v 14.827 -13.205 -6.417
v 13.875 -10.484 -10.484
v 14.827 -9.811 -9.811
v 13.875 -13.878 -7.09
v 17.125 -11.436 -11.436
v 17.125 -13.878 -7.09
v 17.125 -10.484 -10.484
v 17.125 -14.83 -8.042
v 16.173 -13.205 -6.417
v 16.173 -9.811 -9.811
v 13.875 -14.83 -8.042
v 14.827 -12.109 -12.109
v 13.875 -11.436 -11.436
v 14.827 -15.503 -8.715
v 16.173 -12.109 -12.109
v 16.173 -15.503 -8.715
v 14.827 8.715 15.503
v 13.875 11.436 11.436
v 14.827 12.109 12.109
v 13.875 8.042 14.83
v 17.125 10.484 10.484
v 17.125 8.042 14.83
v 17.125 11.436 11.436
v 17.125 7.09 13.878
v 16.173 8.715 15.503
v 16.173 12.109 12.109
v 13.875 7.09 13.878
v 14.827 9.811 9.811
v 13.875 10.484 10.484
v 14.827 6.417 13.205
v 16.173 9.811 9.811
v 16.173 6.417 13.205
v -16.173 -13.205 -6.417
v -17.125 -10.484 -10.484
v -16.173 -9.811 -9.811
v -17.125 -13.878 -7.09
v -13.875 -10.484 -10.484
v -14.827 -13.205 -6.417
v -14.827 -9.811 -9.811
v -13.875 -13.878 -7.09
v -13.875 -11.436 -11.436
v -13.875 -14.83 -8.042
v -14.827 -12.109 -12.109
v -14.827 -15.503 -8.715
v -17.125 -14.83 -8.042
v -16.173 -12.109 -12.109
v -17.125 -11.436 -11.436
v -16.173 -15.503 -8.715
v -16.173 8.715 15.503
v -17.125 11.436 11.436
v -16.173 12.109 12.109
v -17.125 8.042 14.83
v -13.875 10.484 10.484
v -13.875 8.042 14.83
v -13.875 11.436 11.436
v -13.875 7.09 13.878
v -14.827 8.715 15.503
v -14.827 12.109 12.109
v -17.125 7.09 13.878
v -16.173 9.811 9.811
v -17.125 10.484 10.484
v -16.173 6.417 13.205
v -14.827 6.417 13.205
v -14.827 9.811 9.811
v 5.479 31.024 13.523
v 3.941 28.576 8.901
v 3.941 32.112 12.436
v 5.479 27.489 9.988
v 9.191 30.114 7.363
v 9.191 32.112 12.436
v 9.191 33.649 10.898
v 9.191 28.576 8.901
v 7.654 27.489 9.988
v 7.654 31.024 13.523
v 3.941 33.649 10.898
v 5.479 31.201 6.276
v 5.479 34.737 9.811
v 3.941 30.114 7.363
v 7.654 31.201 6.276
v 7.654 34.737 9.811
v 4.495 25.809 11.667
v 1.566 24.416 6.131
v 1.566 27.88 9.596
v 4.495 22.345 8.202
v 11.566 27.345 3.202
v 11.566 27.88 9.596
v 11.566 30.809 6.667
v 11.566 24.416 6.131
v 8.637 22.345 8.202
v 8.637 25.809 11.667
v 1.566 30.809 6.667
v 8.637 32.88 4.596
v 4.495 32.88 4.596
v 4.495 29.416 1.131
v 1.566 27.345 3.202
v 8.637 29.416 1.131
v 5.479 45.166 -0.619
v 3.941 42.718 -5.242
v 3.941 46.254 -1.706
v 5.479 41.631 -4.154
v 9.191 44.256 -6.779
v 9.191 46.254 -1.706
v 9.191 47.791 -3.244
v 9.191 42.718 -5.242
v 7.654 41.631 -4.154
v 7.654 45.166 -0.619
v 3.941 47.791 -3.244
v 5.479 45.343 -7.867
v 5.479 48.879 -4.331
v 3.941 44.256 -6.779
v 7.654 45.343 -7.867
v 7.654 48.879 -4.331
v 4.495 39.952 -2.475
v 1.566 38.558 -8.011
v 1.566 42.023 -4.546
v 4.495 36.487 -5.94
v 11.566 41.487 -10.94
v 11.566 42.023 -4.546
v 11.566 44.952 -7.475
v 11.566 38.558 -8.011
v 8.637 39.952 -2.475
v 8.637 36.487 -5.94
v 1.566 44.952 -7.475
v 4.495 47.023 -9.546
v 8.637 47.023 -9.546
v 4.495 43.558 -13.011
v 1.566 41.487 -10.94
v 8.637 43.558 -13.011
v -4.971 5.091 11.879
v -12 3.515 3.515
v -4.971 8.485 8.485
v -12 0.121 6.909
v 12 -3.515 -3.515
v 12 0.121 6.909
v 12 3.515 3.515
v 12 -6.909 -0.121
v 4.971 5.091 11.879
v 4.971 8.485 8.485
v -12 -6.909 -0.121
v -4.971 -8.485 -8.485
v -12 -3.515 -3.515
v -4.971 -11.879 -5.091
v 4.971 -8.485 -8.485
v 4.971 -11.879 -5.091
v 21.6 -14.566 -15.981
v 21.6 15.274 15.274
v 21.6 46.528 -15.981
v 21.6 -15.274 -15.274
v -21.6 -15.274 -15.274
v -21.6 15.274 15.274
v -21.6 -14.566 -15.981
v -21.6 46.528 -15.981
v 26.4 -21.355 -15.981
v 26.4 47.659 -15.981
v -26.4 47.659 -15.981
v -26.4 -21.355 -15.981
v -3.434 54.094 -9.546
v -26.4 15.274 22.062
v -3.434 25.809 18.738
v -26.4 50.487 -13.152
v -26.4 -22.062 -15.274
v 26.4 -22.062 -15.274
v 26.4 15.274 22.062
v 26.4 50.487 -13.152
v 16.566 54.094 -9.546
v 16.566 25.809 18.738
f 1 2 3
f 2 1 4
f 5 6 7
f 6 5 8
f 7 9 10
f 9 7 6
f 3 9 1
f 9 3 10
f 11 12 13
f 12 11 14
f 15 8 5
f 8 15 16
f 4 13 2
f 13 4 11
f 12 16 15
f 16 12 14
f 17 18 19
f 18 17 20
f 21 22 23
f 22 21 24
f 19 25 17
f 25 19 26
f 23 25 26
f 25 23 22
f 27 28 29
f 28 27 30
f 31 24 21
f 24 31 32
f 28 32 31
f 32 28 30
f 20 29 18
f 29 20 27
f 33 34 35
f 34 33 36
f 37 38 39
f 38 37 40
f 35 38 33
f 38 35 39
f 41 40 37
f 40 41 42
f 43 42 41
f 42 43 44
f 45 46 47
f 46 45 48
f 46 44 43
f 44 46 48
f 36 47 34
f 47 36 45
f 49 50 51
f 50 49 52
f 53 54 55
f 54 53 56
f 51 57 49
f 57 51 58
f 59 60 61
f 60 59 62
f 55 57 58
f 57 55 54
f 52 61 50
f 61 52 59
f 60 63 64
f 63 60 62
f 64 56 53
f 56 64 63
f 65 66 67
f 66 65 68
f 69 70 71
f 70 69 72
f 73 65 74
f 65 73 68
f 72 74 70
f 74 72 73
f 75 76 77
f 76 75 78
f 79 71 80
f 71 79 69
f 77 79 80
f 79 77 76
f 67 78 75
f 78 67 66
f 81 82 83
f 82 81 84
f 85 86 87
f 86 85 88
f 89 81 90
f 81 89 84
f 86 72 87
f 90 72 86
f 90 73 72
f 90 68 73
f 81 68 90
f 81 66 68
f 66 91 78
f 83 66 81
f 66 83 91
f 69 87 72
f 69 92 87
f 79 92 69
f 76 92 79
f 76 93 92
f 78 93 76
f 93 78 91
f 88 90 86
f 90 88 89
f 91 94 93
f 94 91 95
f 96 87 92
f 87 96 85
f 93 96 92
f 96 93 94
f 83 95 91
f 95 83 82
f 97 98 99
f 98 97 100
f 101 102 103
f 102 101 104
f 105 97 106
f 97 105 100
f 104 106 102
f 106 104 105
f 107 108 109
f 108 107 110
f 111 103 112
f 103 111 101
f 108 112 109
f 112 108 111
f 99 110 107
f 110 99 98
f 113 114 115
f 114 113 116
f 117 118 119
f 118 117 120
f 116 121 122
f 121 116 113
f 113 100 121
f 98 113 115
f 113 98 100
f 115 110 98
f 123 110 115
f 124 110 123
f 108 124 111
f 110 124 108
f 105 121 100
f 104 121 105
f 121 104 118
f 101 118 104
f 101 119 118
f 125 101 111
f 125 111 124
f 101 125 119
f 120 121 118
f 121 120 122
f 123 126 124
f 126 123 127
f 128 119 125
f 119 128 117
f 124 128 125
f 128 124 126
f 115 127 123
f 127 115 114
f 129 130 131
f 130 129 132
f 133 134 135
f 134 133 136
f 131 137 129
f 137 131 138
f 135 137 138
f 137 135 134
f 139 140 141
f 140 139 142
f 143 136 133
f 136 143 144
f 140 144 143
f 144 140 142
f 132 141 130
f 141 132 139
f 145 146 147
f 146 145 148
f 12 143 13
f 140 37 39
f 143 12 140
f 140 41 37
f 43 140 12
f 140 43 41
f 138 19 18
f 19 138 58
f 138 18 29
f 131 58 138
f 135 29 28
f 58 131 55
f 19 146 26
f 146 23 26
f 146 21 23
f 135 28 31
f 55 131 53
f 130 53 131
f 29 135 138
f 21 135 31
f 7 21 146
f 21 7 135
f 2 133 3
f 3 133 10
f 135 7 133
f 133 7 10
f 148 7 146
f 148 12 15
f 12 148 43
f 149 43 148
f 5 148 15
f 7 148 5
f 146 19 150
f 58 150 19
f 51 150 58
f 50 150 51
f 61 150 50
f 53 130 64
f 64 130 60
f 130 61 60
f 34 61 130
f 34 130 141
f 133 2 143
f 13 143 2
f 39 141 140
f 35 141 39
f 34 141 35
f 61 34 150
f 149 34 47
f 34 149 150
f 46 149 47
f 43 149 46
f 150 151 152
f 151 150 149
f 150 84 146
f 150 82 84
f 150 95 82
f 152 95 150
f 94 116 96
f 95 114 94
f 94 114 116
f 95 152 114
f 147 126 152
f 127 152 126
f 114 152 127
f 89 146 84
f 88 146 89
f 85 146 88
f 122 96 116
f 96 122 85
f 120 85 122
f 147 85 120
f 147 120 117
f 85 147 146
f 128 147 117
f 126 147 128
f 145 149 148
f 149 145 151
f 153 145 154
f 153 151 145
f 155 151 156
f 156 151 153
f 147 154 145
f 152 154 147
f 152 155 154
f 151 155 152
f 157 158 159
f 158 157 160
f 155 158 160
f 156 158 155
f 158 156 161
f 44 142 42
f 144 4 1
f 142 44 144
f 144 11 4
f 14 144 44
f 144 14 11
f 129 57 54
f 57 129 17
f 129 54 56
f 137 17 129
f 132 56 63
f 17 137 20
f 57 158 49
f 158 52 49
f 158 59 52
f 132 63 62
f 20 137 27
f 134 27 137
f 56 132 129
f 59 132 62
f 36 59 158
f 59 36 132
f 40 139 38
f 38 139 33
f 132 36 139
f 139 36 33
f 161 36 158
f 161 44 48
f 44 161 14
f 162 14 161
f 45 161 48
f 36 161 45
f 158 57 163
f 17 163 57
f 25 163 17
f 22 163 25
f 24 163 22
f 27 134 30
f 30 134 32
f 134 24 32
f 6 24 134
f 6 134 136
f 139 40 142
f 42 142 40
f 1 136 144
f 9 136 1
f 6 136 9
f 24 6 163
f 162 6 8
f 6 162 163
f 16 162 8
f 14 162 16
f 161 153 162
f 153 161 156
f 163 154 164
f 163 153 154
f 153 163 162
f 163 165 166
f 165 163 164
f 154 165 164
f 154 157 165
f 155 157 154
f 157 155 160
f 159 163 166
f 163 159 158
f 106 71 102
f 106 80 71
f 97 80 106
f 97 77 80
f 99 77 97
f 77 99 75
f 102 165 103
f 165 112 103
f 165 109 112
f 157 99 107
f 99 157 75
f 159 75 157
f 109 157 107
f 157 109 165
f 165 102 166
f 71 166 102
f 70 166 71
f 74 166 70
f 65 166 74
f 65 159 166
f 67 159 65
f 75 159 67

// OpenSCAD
// file: util.scad
function accurate_diam(diam,sides) = 1 / cos(180/sides) / 2 * diam;

module hole(diam,len,sides=8) {
  rotate([0,0,180/sides]) {
    cylinder(r=accurate_diam(diam,sides),h=len,center=true,$fn=sides);
  }
}

module accurate_circle(diam,sides=8) {
  rotate([0,0,180/sides]) {
    circle(r=accurate_diam(diam,sides),$fn=sides);
  }
}

module debug_axes() {
  color("red") {
    translate([50,0,0]) cube([100,.2,.2],center=true);
    translate([0,50,0]) cube([.2,100,.2],center=true);
    translate([0,0,50]) cube([.2,.2,100],center=true);
  }
}

module ring(id,thickness,height,fn=16) {
  od = id + thickness;
  linear_extrude(height=height,center=true) {
    difference() {
      accurate_circle(od,fn);
      accurate_circle(id,fn);
    }
  }
}

module rounded_square(width,depth,diam,fn=resolution) {
  pos_x = width/2-diam/2;
  pos_y = depth/2-diam/2;

  hull() {
    for(x=[left,right]) {
      for(y=[front,rear]) {
        translate([x*pos_x,y*pos_y,0]) {
          accurate_circle(diam,fn);
        }
      }
    }
  }
}

module rounded_cube(width,depth,height,diam,fn=resolution) {
  linear_extrude(height=height,center=true,convexity=3) {
    rounded_square(width,depth,diam,fn);
  }
}
// main file
include <main.scad>;

for(side=[1]) {
  mirror([side,0,0]) {
    rotate([45,0,0]) {
      color(colors[side]) motor_mount();
    }
  }
}
